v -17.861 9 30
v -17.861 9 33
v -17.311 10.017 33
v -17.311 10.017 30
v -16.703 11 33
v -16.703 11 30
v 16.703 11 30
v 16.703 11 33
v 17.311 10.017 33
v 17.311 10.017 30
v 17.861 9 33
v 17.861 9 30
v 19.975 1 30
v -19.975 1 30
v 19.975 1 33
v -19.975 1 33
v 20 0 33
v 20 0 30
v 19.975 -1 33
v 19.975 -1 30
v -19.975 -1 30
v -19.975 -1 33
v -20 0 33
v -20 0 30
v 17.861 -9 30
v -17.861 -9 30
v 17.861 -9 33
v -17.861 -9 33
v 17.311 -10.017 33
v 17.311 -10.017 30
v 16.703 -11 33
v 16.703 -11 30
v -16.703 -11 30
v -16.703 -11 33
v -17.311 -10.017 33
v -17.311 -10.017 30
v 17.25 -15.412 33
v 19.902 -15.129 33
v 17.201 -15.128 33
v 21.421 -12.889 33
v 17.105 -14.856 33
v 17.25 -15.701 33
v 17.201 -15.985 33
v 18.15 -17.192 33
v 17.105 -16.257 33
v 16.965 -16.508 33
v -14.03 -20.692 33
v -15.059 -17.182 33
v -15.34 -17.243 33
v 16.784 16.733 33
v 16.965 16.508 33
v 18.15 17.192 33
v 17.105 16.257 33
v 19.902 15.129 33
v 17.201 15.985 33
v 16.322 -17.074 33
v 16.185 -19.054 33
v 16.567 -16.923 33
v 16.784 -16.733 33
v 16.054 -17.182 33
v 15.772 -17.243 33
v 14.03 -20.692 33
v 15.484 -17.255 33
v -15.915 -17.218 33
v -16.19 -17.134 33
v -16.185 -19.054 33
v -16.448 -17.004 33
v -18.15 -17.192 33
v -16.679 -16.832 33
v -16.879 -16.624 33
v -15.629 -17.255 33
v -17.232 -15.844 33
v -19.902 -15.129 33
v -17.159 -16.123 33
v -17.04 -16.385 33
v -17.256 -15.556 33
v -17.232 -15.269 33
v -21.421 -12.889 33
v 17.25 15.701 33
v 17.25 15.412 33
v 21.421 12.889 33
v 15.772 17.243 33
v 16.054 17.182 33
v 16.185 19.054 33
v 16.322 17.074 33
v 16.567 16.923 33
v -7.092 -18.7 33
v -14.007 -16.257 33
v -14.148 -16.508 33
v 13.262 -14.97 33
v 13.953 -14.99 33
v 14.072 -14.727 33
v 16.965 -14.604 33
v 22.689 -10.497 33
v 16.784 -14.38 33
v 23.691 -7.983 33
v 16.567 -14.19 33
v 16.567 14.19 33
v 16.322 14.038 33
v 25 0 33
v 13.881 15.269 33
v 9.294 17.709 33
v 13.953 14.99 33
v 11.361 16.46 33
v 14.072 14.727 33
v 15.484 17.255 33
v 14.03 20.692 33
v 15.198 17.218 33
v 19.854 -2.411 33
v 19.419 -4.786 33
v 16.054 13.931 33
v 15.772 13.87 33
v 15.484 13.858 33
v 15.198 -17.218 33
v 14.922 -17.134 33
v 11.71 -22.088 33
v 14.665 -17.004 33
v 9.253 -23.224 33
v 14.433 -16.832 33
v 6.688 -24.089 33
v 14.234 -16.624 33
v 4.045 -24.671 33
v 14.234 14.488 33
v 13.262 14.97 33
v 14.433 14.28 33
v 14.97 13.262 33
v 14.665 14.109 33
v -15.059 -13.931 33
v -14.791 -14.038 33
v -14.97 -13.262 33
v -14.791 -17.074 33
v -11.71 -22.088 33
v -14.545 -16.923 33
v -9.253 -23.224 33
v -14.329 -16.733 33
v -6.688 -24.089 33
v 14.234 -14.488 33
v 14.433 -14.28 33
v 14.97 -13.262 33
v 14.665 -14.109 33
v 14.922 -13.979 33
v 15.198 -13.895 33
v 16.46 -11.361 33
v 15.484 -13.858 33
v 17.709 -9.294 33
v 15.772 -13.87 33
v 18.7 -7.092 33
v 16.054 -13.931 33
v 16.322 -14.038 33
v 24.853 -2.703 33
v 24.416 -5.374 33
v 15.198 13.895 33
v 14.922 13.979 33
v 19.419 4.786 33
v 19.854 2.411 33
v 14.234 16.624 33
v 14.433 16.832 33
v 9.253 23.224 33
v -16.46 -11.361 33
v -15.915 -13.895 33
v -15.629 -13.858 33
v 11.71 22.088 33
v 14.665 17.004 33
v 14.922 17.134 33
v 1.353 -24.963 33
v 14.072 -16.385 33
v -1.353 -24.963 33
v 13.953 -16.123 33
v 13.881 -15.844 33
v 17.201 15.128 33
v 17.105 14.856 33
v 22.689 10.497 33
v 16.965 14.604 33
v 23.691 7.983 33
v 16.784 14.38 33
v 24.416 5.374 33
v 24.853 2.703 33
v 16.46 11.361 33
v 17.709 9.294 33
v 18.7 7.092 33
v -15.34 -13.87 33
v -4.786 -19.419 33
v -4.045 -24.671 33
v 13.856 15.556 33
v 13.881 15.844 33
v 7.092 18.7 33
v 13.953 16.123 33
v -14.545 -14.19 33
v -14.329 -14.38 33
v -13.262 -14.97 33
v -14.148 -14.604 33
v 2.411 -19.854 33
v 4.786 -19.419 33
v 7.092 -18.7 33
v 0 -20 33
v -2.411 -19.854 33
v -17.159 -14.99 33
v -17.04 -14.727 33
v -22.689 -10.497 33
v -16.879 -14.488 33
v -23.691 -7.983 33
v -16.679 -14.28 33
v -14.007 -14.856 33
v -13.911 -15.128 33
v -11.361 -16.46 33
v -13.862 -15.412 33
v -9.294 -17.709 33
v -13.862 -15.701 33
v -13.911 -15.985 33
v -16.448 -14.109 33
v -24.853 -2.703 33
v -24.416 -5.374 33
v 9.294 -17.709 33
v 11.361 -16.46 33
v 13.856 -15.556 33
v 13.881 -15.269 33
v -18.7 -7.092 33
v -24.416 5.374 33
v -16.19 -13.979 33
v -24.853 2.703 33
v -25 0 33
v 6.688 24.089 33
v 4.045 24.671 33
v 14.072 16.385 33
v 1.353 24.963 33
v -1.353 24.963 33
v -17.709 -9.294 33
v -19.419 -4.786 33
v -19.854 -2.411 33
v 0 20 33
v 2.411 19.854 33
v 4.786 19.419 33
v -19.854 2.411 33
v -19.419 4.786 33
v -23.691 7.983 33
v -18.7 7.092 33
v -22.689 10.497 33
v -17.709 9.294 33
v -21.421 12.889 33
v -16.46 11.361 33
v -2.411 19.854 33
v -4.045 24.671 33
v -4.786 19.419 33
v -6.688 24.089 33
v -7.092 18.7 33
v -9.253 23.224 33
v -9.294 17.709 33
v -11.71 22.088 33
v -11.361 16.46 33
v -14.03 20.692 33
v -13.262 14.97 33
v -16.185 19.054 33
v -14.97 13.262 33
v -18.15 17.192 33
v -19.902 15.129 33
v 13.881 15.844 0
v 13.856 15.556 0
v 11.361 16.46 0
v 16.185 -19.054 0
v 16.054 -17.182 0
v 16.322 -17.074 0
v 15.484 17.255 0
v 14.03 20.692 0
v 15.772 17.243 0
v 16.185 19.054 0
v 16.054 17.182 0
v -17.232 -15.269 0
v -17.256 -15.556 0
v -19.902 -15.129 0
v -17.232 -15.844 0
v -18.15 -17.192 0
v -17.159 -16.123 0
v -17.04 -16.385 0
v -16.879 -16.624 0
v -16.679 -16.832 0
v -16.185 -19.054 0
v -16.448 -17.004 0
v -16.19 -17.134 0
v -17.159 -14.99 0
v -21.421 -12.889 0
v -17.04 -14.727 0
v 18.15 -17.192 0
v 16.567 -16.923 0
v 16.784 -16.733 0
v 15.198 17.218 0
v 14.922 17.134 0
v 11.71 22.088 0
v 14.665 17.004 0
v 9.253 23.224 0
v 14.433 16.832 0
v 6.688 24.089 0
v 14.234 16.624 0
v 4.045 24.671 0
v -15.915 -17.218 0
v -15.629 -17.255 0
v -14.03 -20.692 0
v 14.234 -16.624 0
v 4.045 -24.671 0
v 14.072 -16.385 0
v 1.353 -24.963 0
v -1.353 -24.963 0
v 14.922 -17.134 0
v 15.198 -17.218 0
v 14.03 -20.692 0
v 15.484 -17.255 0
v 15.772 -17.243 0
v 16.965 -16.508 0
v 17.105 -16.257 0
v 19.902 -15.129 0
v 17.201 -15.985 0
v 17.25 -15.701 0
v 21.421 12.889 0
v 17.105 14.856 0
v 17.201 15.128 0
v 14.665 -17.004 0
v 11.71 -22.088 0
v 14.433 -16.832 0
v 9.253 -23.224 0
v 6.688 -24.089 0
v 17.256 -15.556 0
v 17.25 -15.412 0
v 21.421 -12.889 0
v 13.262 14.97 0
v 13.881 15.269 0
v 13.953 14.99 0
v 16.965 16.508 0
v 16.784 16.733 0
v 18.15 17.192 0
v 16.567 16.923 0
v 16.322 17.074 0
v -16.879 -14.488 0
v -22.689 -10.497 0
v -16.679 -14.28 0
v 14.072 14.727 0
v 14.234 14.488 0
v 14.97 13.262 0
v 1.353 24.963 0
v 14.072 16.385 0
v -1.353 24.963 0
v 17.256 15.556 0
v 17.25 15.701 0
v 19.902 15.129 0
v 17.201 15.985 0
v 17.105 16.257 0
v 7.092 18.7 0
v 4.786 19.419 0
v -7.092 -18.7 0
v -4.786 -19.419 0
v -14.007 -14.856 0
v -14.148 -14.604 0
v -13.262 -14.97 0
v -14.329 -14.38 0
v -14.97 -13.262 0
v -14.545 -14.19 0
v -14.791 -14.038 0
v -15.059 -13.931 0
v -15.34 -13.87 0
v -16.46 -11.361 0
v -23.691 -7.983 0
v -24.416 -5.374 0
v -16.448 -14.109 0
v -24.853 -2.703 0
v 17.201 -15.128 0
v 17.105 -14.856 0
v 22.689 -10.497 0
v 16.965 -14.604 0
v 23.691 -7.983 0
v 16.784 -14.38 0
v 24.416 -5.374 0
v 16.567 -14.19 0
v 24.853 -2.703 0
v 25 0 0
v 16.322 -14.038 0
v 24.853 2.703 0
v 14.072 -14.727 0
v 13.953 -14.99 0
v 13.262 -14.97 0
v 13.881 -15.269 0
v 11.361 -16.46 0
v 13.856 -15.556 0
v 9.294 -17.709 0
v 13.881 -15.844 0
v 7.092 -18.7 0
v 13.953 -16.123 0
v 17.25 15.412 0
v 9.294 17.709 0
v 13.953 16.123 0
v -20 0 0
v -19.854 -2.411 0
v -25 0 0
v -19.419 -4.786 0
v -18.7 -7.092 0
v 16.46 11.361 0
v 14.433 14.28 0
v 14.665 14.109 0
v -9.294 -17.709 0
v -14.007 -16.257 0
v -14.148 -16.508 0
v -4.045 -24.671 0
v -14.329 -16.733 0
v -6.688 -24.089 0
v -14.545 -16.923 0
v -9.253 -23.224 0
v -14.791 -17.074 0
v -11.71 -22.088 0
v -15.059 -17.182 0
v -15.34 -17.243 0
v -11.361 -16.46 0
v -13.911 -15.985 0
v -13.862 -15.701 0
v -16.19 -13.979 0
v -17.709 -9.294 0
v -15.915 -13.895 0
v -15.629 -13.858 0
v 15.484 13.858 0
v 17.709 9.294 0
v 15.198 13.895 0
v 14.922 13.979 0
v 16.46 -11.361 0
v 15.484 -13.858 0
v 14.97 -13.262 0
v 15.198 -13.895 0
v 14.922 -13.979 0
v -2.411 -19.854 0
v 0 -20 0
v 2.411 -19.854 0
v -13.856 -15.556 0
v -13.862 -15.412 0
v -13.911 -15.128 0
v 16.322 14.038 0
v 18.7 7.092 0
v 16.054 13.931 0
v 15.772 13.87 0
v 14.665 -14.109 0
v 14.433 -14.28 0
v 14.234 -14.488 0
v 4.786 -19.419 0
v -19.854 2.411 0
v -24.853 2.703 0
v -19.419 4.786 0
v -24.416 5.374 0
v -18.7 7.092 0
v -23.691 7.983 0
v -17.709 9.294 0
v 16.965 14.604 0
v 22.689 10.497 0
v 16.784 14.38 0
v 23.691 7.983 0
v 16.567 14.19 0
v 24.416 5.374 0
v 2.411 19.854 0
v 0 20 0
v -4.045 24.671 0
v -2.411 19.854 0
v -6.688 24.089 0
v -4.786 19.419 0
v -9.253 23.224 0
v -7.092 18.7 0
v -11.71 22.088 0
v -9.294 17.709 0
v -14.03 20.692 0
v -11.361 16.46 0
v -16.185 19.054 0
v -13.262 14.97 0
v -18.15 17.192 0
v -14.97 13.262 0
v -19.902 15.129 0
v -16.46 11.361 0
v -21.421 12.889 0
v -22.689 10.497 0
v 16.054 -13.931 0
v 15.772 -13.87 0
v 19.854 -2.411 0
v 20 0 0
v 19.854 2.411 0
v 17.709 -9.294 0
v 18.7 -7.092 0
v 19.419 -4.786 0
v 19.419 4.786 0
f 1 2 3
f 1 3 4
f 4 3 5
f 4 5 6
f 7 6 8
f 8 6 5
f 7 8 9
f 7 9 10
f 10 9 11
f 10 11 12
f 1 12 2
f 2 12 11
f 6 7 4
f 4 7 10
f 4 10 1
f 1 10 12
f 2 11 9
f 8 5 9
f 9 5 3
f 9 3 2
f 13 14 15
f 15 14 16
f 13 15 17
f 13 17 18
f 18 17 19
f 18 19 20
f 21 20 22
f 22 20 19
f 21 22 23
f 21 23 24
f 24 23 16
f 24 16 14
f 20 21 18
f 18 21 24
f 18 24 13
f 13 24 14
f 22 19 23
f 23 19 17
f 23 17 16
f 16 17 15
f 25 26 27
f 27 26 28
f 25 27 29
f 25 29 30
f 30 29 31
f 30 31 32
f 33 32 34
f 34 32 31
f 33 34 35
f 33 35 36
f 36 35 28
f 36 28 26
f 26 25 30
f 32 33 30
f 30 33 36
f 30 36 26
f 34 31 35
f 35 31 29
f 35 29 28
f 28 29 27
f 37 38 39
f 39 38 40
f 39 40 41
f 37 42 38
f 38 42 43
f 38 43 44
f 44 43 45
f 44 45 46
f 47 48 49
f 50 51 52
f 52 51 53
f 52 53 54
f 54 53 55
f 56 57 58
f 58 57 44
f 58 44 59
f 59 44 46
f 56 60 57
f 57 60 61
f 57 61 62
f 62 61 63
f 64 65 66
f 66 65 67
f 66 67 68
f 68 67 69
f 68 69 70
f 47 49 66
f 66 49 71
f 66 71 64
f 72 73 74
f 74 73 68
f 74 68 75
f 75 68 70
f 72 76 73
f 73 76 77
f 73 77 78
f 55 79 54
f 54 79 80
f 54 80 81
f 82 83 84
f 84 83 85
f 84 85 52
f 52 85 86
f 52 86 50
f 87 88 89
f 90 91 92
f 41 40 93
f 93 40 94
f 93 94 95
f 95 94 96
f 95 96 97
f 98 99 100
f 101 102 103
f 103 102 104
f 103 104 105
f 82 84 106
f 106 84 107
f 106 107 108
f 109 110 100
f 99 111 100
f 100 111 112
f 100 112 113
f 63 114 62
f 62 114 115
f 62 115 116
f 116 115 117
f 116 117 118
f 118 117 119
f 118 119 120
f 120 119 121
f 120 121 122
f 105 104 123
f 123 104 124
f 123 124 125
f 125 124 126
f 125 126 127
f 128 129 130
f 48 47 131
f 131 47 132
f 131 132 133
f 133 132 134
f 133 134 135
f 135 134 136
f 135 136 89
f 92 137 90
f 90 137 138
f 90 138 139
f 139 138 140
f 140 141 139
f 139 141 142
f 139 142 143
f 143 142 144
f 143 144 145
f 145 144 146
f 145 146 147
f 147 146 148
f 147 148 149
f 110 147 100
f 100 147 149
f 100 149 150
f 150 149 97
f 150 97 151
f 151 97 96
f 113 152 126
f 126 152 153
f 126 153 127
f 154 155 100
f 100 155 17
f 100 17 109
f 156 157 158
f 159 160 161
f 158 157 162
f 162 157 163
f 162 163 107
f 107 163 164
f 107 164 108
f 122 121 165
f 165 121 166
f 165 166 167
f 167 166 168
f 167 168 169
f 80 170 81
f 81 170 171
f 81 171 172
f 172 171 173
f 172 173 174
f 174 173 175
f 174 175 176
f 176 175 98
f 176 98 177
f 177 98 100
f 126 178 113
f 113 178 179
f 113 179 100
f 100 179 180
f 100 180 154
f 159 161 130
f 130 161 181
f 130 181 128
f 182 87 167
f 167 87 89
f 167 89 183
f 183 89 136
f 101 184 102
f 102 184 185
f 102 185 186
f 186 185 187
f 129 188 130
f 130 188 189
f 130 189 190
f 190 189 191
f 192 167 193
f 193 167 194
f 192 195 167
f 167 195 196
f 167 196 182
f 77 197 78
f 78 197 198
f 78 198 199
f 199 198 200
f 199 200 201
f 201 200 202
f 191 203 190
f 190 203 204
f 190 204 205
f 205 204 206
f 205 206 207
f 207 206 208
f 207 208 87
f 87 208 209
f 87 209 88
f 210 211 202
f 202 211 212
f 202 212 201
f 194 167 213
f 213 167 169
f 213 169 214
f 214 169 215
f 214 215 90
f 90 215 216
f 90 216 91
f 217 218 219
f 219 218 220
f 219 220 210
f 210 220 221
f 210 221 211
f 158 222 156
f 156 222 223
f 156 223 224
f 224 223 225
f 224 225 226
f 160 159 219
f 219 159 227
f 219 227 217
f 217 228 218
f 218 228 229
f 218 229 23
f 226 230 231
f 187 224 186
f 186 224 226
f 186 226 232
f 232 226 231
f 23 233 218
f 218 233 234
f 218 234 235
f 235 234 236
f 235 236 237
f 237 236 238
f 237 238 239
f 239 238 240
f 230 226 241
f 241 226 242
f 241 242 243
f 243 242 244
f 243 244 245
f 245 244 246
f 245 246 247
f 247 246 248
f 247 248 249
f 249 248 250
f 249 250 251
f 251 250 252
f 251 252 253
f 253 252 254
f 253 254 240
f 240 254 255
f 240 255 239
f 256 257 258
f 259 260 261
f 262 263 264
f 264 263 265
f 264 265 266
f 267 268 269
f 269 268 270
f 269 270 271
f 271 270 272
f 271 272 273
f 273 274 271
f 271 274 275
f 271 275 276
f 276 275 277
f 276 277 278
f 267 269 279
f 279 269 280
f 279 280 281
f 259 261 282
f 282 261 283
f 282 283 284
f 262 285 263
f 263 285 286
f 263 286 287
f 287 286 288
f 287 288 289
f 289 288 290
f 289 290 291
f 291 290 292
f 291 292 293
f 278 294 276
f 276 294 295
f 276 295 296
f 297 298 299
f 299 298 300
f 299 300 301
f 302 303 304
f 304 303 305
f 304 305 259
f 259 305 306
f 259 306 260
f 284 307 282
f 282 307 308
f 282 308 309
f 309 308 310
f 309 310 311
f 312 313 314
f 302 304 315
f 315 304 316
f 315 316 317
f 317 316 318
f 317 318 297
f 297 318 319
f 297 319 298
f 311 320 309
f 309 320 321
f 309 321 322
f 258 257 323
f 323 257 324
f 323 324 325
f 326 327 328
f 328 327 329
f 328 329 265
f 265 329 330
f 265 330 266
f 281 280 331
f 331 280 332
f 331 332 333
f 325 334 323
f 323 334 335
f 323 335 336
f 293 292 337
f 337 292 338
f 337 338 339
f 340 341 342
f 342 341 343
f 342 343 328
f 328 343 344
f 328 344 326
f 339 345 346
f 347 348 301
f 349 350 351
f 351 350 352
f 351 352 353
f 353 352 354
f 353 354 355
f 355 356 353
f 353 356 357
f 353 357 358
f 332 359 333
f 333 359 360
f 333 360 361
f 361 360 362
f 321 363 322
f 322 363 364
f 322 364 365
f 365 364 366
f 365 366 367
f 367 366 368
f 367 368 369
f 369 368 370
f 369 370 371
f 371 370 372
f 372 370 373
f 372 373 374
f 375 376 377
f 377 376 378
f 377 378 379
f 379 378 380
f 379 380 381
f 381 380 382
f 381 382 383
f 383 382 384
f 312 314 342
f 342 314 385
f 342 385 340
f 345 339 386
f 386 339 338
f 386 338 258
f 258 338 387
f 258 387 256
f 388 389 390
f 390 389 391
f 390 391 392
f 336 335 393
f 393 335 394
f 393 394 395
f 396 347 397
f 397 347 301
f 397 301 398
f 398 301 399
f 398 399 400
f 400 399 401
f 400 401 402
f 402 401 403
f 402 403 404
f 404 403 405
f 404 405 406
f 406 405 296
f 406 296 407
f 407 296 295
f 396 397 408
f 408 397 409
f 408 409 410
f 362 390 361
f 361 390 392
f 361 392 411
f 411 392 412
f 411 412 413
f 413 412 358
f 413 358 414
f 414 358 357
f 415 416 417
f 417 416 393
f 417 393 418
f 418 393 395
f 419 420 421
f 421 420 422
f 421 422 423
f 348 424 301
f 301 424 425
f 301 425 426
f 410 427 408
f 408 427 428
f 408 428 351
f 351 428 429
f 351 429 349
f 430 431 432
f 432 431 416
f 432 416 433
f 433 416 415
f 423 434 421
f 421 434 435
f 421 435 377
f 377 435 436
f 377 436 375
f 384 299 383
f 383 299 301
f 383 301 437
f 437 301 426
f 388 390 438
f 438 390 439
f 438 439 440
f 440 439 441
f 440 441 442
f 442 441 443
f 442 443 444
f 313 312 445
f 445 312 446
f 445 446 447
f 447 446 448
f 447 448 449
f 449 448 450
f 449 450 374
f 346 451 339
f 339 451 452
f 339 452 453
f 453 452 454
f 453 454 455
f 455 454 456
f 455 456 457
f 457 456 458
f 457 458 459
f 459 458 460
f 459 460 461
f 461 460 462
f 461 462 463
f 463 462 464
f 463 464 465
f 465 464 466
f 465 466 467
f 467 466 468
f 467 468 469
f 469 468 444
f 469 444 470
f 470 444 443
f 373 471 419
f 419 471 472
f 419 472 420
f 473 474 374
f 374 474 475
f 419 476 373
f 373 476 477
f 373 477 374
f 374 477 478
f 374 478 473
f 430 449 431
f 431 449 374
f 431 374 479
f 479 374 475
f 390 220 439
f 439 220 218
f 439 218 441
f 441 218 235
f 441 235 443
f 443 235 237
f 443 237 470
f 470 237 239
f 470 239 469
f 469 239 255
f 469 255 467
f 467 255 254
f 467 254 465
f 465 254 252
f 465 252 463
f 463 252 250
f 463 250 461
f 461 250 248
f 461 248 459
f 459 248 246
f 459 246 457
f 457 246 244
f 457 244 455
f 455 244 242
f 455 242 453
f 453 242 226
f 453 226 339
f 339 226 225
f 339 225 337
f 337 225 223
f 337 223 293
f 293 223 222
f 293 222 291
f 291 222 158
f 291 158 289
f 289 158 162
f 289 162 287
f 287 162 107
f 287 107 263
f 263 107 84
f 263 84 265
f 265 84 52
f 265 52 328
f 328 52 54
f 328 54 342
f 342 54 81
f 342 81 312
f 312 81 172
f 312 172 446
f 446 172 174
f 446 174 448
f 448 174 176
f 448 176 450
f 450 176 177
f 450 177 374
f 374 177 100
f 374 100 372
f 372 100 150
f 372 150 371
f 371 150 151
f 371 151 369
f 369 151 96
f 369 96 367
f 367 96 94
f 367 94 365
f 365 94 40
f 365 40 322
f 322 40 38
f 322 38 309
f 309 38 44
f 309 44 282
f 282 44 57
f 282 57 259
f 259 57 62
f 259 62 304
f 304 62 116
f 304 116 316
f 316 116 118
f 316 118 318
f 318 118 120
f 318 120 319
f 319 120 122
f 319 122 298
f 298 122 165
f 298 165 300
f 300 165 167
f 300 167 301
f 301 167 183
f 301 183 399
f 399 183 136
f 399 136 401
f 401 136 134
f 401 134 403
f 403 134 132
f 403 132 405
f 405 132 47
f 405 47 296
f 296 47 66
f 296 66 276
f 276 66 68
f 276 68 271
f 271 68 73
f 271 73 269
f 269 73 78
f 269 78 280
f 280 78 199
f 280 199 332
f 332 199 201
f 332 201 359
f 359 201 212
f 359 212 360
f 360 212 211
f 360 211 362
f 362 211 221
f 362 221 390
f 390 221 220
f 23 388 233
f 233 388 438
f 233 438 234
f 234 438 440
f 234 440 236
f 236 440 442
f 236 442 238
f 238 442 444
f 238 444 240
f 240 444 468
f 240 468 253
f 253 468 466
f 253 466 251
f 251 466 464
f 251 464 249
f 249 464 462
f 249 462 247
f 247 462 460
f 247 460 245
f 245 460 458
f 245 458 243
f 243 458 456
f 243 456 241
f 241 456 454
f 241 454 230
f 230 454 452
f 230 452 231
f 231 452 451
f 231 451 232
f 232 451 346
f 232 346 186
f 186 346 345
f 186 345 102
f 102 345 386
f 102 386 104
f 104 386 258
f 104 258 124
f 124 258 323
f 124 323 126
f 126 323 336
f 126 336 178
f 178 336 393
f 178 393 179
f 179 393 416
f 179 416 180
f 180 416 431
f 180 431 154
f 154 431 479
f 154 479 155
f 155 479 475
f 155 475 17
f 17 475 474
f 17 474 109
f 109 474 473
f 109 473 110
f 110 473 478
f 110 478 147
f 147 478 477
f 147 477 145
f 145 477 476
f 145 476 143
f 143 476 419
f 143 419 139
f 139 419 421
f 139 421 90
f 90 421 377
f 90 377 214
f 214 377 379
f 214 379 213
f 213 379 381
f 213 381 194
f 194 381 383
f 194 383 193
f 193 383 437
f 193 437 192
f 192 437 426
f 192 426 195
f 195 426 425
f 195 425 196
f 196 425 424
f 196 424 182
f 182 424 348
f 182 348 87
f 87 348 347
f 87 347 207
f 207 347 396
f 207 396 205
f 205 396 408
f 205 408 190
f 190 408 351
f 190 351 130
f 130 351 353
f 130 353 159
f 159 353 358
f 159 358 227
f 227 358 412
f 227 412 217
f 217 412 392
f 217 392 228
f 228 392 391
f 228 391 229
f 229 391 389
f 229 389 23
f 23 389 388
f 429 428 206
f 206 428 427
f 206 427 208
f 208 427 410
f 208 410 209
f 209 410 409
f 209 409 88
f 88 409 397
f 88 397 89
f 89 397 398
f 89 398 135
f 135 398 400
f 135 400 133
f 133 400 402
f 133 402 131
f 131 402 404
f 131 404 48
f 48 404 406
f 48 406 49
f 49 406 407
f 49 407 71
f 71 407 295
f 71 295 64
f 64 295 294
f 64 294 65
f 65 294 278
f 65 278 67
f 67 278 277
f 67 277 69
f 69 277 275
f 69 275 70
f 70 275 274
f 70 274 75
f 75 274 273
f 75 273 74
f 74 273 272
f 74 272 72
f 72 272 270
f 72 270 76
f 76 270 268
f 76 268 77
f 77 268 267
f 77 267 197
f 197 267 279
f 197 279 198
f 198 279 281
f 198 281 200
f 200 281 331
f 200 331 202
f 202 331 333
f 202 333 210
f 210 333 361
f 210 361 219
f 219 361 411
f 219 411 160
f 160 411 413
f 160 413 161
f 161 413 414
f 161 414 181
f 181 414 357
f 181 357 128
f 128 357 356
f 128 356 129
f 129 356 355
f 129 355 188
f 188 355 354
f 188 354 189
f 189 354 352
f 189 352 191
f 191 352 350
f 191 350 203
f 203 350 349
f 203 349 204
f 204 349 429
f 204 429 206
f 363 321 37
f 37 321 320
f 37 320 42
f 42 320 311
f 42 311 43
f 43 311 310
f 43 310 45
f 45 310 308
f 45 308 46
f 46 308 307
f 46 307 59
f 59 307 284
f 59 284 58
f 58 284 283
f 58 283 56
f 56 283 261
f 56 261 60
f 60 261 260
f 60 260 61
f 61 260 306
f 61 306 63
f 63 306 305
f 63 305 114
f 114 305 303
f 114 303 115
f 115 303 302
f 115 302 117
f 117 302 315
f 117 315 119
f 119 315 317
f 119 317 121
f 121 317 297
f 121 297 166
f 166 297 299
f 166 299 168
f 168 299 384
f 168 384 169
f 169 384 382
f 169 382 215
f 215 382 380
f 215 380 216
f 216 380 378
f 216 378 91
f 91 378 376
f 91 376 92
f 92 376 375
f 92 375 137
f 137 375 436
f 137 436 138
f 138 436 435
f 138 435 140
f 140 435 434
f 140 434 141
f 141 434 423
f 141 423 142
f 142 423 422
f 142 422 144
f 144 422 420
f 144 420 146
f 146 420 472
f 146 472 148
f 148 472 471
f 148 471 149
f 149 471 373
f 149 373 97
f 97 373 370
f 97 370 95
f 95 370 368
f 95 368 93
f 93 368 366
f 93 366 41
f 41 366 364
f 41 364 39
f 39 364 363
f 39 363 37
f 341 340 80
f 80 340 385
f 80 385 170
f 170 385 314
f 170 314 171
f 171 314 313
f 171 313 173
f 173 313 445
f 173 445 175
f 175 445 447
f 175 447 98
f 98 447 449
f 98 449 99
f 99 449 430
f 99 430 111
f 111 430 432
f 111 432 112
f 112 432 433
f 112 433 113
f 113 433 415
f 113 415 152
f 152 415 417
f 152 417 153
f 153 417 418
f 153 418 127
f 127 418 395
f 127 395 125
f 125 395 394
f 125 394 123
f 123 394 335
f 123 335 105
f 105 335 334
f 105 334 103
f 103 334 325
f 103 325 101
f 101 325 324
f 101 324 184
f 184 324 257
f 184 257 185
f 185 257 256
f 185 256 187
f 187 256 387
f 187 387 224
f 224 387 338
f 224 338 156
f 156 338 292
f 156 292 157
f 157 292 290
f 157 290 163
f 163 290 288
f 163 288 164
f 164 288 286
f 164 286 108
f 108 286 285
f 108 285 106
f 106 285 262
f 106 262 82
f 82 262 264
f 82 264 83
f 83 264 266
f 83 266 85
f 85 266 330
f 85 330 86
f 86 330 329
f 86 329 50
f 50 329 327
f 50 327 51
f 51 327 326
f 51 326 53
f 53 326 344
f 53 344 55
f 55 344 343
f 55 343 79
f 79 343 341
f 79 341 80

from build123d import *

# Parameters (mm, degrees)
SKETCH2_R                                     = 25
SKETCH2_R_2                                   = 20
BOSS_EXTRUDE1_DEPTH                           = 33
BOSS_EXTRUDE4_DEPTH                           = 3
CBORE_FOR_M3_HEX_HEAD_MACHINE_SCREW1_AT_COUNT = 2
CBORE_FOR_M3_HEX_HEAD_MACHINE_SCREW1_AT_PITCH = 31.112698372
CBORE_FOR_M3_HEX_HEAD_MACHINE_SCREW1_2_COUNT  = 2
CBORE_FOR_M3_HEX_HEAD_MACHINE_SCREW1_2_PITCH  = 44


with BuildPart() as part:
    # Sketch2 → Boss-Extrude1 (new body)
    with BuildSketch(Plane.XY):
        Circle(SKETCH2_R)
        Circle(SKETCH2_R_2, mode=Mode.SUBTRACT)
    extrude(amount=BOSS_EXTRUDE1_DEPTH)

    # Sketch5 → CBORE for M3 Hex Head Machine Screw1 (revolve, cut)
    with BuildSketch(Plane(origin=(15.556349186, 15.556349186, -10), x_dir=(0, 1, 0), z_dir=(1, 0, 0))):
        Polygon((0, 0), (0, 43), (1.7, 43), (1.7, 2.3), (4.2, 2.3), (4.2, 0.025), (4.225, 0), align=None)
    cbore_for_m3_hex_head_machine_screw1 = revolve(axis=Axis((15.556349186, 15.556349186, -16.35), (0, 0, 1)), mode=Mode.SUBTRACT)

    # CBORE for M3 Hex Head Machine Screw1 at: CBORE for M3 Hex Head Machine Screw1 ×2
    with Locations(*[(0, -i * CBORE_FOR_M3_HEX_HEAD_MACHINE_SCREW1_AT_PITCH, 0) for i in range(1, CBORE_FOR_M3_HEX_HEAD_MACHINE_SCREW1_AT_COUNT)]):
        add(cbore_for_m3_hex_head_machine_screw1, mode=Mode.SUBTRACT)

    # CBORE for M3 Hex Head Machine Screw1 2: CBORE for M3 Hex Head Machine Screw1 ×2
    with Locations(*[Vector(-0.707106781, -0.707106781, 0) * (i * CBORE_FOR_M3_HEX_HEAD_MACHINE_SCREW1_2_PITCH) for i in range(1, CBORE_FOR_M3_HEX_HEAD_MACHINE_SCREW1_2_COUNT)]):
        add(cbore_for_m3_hex_head_machine_screw1, mode=Mode.SUBTRACT)


with BuildPart() as body_2:
    # Sketch3 → Boss-Extrude4 (new body)
    with BuildSketch(Plane.XY.offset(33)):
        with BuildLine():
            ThreePointArc((-17.320508076, 10), (-17.597644245, 9.503836963), (-17.860571099, 9))
            Line((-17.860571099, 9), (17.860571099, 9))
            ThreePointArc((17.860571099, 9), (17.597644245, 9.503836963), (17.320508076, 10))
            Line((17.320508076, 10), (-17.320508076, 10))
        make_face()
        with BuildLine():
            ThreePointArc((-16.703293088, 11), (-17.019246793, 10.504534192), (-17.320508076, 10))
            Line((-17.320508076, 10), (17.320508076, 10))
            ThreePointArc((17.320508076, 10), (17.019246793, 10.504534192), (16.703293088, 11))
            Line((16.703293088, 11), (-16.703293088, 11))
        make_face()
        with BuildLine():
            ThreePointArc((-20, 0), (-19.993745111, -0.500156421), (-19.974984355, -1))
            Line((-19.974984355, -1), (19.974984355, -1))
            ThreePointArc((19.974984355, -1), (19.993745111, -0.500156421), (20, 0))
            ThreePointArc((20, 0), (19.993745111, 0.500156421), (19.974984355, 1))
            Line((19.974984355, 1), (-19.974984355, 1))
            ThreePointArc((-19.974984355, 1), (-19.993745111, 0.500156421), (-20, 0))
        make_face()
        with BuildLine():
            ThreePointArc((-17.860571099, -9), (-17.597644245, -9.503836963), (-17.320508076, -10))
            Line((-17.320508076, -10), (17.320508076, -10))
            ThreePointArc((17.320508076, -10), (17.597644245, -9.503836963), (17.860571099, -9))
            Line((17.860571099, -9), (-17.860571099, -9))
        make_face()
        with BuildLine():
            Line((17.320508076, -10), (-17.320508076, -10))
            ThreePointArc((-17.320508076, -10), (-17.019246793, -10.504534192), (-16.703293088, -11))
            Line((-16.703293088, -11), (16.703293088, -11))
            ThreePointArc((16.703293088, -11), (17.019246793, -10.504534192), (17.320508076, -10))
        make_face()
    extrude(amount=-BOSS_EXTRUDE4_DEPTH)


solid = Compound([part.part, body_2.part])
